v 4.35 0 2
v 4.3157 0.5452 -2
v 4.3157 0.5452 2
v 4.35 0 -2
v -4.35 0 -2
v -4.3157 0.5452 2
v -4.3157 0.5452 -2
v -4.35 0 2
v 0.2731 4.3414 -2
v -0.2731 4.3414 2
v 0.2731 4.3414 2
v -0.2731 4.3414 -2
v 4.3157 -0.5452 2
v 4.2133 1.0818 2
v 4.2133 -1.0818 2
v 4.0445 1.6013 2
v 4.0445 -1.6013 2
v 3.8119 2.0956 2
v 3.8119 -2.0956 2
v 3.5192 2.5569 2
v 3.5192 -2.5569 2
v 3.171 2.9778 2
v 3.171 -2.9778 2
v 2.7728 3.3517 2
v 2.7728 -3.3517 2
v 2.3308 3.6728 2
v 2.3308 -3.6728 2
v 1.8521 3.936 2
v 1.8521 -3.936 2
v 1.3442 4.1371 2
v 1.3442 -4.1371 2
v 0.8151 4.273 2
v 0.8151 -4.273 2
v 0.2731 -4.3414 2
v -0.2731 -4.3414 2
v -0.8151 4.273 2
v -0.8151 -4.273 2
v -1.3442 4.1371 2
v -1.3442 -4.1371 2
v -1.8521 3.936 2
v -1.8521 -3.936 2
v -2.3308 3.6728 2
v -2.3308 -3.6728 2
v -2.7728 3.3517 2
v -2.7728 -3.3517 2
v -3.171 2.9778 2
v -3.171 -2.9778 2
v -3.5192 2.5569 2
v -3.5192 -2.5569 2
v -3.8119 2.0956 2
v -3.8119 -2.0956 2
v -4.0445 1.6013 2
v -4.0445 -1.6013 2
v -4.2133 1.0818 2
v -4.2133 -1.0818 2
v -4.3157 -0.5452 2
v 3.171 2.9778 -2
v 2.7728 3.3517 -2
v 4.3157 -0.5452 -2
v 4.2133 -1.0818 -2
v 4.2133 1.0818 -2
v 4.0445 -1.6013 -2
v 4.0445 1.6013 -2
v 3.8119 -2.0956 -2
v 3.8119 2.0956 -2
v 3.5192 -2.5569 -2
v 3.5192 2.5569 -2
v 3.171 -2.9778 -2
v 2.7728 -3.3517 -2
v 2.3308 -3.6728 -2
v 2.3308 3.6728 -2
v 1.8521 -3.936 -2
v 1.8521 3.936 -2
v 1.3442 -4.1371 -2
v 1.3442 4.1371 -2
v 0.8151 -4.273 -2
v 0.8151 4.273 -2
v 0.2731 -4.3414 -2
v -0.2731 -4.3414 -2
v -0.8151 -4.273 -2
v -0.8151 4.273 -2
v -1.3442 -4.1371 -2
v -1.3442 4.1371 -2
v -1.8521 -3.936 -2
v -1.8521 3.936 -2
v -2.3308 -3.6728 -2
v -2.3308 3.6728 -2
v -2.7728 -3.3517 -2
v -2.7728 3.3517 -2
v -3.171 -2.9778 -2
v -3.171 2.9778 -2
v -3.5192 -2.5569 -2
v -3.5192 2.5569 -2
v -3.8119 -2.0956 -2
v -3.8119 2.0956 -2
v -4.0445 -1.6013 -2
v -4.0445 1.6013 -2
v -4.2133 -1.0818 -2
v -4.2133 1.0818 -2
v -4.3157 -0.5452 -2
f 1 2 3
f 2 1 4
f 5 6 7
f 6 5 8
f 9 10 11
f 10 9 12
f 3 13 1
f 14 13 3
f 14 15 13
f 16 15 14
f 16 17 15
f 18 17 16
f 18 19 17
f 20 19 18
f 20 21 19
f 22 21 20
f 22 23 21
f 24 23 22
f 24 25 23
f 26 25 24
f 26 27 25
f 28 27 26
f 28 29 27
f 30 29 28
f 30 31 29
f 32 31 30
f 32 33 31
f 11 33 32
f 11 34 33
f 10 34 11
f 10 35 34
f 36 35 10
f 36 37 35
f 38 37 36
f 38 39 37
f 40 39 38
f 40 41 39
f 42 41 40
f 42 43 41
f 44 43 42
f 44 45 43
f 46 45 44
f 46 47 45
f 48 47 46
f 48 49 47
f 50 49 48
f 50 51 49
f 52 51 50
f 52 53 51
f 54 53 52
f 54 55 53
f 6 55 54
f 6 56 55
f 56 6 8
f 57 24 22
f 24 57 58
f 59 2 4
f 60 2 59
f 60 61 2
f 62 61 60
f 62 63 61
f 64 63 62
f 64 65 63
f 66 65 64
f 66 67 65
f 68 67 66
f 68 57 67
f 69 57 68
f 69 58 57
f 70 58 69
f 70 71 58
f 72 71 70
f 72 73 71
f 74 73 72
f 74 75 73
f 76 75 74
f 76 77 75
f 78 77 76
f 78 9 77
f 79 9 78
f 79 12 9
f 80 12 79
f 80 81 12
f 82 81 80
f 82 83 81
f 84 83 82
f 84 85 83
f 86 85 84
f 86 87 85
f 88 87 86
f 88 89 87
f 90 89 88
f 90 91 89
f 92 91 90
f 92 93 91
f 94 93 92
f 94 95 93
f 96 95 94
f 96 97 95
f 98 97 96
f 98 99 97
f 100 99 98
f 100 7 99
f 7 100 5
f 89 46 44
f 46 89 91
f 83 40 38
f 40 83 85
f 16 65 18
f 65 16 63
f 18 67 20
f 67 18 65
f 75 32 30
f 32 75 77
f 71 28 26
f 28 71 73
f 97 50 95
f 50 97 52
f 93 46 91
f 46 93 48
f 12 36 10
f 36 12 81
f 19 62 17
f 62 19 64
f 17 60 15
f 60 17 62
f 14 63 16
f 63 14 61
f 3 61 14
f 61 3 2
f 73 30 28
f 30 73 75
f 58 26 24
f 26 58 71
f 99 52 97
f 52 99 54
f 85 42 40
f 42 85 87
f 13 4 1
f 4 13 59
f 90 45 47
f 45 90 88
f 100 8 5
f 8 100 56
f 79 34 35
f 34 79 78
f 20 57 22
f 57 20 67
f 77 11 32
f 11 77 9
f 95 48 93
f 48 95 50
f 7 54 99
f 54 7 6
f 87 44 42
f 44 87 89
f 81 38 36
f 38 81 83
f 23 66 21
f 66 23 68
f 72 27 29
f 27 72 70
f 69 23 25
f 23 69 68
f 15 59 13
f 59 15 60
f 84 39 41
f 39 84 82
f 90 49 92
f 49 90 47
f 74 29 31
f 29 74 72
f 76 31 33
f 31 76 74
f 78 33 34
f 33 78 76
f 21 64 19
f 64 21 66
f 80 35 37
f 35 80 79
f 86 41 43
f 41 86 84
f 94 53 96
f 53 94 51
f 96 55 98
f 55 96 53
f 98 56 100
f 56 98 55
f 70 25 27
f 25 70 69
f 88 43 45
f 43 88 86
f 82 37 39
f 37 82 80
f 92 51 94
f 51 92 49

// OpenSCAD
$fn = 50;


difference() {
	union() {
		translate(v = [0, 0, -2.0000000000]) {
			cylinder(h = 4, r = 4.3500000000);
		}
	}
	union() {
		translate(v = [0, 0, -100.0000000000]) {
			cylinder(h = 200, r = 0);
		}
	}
}
